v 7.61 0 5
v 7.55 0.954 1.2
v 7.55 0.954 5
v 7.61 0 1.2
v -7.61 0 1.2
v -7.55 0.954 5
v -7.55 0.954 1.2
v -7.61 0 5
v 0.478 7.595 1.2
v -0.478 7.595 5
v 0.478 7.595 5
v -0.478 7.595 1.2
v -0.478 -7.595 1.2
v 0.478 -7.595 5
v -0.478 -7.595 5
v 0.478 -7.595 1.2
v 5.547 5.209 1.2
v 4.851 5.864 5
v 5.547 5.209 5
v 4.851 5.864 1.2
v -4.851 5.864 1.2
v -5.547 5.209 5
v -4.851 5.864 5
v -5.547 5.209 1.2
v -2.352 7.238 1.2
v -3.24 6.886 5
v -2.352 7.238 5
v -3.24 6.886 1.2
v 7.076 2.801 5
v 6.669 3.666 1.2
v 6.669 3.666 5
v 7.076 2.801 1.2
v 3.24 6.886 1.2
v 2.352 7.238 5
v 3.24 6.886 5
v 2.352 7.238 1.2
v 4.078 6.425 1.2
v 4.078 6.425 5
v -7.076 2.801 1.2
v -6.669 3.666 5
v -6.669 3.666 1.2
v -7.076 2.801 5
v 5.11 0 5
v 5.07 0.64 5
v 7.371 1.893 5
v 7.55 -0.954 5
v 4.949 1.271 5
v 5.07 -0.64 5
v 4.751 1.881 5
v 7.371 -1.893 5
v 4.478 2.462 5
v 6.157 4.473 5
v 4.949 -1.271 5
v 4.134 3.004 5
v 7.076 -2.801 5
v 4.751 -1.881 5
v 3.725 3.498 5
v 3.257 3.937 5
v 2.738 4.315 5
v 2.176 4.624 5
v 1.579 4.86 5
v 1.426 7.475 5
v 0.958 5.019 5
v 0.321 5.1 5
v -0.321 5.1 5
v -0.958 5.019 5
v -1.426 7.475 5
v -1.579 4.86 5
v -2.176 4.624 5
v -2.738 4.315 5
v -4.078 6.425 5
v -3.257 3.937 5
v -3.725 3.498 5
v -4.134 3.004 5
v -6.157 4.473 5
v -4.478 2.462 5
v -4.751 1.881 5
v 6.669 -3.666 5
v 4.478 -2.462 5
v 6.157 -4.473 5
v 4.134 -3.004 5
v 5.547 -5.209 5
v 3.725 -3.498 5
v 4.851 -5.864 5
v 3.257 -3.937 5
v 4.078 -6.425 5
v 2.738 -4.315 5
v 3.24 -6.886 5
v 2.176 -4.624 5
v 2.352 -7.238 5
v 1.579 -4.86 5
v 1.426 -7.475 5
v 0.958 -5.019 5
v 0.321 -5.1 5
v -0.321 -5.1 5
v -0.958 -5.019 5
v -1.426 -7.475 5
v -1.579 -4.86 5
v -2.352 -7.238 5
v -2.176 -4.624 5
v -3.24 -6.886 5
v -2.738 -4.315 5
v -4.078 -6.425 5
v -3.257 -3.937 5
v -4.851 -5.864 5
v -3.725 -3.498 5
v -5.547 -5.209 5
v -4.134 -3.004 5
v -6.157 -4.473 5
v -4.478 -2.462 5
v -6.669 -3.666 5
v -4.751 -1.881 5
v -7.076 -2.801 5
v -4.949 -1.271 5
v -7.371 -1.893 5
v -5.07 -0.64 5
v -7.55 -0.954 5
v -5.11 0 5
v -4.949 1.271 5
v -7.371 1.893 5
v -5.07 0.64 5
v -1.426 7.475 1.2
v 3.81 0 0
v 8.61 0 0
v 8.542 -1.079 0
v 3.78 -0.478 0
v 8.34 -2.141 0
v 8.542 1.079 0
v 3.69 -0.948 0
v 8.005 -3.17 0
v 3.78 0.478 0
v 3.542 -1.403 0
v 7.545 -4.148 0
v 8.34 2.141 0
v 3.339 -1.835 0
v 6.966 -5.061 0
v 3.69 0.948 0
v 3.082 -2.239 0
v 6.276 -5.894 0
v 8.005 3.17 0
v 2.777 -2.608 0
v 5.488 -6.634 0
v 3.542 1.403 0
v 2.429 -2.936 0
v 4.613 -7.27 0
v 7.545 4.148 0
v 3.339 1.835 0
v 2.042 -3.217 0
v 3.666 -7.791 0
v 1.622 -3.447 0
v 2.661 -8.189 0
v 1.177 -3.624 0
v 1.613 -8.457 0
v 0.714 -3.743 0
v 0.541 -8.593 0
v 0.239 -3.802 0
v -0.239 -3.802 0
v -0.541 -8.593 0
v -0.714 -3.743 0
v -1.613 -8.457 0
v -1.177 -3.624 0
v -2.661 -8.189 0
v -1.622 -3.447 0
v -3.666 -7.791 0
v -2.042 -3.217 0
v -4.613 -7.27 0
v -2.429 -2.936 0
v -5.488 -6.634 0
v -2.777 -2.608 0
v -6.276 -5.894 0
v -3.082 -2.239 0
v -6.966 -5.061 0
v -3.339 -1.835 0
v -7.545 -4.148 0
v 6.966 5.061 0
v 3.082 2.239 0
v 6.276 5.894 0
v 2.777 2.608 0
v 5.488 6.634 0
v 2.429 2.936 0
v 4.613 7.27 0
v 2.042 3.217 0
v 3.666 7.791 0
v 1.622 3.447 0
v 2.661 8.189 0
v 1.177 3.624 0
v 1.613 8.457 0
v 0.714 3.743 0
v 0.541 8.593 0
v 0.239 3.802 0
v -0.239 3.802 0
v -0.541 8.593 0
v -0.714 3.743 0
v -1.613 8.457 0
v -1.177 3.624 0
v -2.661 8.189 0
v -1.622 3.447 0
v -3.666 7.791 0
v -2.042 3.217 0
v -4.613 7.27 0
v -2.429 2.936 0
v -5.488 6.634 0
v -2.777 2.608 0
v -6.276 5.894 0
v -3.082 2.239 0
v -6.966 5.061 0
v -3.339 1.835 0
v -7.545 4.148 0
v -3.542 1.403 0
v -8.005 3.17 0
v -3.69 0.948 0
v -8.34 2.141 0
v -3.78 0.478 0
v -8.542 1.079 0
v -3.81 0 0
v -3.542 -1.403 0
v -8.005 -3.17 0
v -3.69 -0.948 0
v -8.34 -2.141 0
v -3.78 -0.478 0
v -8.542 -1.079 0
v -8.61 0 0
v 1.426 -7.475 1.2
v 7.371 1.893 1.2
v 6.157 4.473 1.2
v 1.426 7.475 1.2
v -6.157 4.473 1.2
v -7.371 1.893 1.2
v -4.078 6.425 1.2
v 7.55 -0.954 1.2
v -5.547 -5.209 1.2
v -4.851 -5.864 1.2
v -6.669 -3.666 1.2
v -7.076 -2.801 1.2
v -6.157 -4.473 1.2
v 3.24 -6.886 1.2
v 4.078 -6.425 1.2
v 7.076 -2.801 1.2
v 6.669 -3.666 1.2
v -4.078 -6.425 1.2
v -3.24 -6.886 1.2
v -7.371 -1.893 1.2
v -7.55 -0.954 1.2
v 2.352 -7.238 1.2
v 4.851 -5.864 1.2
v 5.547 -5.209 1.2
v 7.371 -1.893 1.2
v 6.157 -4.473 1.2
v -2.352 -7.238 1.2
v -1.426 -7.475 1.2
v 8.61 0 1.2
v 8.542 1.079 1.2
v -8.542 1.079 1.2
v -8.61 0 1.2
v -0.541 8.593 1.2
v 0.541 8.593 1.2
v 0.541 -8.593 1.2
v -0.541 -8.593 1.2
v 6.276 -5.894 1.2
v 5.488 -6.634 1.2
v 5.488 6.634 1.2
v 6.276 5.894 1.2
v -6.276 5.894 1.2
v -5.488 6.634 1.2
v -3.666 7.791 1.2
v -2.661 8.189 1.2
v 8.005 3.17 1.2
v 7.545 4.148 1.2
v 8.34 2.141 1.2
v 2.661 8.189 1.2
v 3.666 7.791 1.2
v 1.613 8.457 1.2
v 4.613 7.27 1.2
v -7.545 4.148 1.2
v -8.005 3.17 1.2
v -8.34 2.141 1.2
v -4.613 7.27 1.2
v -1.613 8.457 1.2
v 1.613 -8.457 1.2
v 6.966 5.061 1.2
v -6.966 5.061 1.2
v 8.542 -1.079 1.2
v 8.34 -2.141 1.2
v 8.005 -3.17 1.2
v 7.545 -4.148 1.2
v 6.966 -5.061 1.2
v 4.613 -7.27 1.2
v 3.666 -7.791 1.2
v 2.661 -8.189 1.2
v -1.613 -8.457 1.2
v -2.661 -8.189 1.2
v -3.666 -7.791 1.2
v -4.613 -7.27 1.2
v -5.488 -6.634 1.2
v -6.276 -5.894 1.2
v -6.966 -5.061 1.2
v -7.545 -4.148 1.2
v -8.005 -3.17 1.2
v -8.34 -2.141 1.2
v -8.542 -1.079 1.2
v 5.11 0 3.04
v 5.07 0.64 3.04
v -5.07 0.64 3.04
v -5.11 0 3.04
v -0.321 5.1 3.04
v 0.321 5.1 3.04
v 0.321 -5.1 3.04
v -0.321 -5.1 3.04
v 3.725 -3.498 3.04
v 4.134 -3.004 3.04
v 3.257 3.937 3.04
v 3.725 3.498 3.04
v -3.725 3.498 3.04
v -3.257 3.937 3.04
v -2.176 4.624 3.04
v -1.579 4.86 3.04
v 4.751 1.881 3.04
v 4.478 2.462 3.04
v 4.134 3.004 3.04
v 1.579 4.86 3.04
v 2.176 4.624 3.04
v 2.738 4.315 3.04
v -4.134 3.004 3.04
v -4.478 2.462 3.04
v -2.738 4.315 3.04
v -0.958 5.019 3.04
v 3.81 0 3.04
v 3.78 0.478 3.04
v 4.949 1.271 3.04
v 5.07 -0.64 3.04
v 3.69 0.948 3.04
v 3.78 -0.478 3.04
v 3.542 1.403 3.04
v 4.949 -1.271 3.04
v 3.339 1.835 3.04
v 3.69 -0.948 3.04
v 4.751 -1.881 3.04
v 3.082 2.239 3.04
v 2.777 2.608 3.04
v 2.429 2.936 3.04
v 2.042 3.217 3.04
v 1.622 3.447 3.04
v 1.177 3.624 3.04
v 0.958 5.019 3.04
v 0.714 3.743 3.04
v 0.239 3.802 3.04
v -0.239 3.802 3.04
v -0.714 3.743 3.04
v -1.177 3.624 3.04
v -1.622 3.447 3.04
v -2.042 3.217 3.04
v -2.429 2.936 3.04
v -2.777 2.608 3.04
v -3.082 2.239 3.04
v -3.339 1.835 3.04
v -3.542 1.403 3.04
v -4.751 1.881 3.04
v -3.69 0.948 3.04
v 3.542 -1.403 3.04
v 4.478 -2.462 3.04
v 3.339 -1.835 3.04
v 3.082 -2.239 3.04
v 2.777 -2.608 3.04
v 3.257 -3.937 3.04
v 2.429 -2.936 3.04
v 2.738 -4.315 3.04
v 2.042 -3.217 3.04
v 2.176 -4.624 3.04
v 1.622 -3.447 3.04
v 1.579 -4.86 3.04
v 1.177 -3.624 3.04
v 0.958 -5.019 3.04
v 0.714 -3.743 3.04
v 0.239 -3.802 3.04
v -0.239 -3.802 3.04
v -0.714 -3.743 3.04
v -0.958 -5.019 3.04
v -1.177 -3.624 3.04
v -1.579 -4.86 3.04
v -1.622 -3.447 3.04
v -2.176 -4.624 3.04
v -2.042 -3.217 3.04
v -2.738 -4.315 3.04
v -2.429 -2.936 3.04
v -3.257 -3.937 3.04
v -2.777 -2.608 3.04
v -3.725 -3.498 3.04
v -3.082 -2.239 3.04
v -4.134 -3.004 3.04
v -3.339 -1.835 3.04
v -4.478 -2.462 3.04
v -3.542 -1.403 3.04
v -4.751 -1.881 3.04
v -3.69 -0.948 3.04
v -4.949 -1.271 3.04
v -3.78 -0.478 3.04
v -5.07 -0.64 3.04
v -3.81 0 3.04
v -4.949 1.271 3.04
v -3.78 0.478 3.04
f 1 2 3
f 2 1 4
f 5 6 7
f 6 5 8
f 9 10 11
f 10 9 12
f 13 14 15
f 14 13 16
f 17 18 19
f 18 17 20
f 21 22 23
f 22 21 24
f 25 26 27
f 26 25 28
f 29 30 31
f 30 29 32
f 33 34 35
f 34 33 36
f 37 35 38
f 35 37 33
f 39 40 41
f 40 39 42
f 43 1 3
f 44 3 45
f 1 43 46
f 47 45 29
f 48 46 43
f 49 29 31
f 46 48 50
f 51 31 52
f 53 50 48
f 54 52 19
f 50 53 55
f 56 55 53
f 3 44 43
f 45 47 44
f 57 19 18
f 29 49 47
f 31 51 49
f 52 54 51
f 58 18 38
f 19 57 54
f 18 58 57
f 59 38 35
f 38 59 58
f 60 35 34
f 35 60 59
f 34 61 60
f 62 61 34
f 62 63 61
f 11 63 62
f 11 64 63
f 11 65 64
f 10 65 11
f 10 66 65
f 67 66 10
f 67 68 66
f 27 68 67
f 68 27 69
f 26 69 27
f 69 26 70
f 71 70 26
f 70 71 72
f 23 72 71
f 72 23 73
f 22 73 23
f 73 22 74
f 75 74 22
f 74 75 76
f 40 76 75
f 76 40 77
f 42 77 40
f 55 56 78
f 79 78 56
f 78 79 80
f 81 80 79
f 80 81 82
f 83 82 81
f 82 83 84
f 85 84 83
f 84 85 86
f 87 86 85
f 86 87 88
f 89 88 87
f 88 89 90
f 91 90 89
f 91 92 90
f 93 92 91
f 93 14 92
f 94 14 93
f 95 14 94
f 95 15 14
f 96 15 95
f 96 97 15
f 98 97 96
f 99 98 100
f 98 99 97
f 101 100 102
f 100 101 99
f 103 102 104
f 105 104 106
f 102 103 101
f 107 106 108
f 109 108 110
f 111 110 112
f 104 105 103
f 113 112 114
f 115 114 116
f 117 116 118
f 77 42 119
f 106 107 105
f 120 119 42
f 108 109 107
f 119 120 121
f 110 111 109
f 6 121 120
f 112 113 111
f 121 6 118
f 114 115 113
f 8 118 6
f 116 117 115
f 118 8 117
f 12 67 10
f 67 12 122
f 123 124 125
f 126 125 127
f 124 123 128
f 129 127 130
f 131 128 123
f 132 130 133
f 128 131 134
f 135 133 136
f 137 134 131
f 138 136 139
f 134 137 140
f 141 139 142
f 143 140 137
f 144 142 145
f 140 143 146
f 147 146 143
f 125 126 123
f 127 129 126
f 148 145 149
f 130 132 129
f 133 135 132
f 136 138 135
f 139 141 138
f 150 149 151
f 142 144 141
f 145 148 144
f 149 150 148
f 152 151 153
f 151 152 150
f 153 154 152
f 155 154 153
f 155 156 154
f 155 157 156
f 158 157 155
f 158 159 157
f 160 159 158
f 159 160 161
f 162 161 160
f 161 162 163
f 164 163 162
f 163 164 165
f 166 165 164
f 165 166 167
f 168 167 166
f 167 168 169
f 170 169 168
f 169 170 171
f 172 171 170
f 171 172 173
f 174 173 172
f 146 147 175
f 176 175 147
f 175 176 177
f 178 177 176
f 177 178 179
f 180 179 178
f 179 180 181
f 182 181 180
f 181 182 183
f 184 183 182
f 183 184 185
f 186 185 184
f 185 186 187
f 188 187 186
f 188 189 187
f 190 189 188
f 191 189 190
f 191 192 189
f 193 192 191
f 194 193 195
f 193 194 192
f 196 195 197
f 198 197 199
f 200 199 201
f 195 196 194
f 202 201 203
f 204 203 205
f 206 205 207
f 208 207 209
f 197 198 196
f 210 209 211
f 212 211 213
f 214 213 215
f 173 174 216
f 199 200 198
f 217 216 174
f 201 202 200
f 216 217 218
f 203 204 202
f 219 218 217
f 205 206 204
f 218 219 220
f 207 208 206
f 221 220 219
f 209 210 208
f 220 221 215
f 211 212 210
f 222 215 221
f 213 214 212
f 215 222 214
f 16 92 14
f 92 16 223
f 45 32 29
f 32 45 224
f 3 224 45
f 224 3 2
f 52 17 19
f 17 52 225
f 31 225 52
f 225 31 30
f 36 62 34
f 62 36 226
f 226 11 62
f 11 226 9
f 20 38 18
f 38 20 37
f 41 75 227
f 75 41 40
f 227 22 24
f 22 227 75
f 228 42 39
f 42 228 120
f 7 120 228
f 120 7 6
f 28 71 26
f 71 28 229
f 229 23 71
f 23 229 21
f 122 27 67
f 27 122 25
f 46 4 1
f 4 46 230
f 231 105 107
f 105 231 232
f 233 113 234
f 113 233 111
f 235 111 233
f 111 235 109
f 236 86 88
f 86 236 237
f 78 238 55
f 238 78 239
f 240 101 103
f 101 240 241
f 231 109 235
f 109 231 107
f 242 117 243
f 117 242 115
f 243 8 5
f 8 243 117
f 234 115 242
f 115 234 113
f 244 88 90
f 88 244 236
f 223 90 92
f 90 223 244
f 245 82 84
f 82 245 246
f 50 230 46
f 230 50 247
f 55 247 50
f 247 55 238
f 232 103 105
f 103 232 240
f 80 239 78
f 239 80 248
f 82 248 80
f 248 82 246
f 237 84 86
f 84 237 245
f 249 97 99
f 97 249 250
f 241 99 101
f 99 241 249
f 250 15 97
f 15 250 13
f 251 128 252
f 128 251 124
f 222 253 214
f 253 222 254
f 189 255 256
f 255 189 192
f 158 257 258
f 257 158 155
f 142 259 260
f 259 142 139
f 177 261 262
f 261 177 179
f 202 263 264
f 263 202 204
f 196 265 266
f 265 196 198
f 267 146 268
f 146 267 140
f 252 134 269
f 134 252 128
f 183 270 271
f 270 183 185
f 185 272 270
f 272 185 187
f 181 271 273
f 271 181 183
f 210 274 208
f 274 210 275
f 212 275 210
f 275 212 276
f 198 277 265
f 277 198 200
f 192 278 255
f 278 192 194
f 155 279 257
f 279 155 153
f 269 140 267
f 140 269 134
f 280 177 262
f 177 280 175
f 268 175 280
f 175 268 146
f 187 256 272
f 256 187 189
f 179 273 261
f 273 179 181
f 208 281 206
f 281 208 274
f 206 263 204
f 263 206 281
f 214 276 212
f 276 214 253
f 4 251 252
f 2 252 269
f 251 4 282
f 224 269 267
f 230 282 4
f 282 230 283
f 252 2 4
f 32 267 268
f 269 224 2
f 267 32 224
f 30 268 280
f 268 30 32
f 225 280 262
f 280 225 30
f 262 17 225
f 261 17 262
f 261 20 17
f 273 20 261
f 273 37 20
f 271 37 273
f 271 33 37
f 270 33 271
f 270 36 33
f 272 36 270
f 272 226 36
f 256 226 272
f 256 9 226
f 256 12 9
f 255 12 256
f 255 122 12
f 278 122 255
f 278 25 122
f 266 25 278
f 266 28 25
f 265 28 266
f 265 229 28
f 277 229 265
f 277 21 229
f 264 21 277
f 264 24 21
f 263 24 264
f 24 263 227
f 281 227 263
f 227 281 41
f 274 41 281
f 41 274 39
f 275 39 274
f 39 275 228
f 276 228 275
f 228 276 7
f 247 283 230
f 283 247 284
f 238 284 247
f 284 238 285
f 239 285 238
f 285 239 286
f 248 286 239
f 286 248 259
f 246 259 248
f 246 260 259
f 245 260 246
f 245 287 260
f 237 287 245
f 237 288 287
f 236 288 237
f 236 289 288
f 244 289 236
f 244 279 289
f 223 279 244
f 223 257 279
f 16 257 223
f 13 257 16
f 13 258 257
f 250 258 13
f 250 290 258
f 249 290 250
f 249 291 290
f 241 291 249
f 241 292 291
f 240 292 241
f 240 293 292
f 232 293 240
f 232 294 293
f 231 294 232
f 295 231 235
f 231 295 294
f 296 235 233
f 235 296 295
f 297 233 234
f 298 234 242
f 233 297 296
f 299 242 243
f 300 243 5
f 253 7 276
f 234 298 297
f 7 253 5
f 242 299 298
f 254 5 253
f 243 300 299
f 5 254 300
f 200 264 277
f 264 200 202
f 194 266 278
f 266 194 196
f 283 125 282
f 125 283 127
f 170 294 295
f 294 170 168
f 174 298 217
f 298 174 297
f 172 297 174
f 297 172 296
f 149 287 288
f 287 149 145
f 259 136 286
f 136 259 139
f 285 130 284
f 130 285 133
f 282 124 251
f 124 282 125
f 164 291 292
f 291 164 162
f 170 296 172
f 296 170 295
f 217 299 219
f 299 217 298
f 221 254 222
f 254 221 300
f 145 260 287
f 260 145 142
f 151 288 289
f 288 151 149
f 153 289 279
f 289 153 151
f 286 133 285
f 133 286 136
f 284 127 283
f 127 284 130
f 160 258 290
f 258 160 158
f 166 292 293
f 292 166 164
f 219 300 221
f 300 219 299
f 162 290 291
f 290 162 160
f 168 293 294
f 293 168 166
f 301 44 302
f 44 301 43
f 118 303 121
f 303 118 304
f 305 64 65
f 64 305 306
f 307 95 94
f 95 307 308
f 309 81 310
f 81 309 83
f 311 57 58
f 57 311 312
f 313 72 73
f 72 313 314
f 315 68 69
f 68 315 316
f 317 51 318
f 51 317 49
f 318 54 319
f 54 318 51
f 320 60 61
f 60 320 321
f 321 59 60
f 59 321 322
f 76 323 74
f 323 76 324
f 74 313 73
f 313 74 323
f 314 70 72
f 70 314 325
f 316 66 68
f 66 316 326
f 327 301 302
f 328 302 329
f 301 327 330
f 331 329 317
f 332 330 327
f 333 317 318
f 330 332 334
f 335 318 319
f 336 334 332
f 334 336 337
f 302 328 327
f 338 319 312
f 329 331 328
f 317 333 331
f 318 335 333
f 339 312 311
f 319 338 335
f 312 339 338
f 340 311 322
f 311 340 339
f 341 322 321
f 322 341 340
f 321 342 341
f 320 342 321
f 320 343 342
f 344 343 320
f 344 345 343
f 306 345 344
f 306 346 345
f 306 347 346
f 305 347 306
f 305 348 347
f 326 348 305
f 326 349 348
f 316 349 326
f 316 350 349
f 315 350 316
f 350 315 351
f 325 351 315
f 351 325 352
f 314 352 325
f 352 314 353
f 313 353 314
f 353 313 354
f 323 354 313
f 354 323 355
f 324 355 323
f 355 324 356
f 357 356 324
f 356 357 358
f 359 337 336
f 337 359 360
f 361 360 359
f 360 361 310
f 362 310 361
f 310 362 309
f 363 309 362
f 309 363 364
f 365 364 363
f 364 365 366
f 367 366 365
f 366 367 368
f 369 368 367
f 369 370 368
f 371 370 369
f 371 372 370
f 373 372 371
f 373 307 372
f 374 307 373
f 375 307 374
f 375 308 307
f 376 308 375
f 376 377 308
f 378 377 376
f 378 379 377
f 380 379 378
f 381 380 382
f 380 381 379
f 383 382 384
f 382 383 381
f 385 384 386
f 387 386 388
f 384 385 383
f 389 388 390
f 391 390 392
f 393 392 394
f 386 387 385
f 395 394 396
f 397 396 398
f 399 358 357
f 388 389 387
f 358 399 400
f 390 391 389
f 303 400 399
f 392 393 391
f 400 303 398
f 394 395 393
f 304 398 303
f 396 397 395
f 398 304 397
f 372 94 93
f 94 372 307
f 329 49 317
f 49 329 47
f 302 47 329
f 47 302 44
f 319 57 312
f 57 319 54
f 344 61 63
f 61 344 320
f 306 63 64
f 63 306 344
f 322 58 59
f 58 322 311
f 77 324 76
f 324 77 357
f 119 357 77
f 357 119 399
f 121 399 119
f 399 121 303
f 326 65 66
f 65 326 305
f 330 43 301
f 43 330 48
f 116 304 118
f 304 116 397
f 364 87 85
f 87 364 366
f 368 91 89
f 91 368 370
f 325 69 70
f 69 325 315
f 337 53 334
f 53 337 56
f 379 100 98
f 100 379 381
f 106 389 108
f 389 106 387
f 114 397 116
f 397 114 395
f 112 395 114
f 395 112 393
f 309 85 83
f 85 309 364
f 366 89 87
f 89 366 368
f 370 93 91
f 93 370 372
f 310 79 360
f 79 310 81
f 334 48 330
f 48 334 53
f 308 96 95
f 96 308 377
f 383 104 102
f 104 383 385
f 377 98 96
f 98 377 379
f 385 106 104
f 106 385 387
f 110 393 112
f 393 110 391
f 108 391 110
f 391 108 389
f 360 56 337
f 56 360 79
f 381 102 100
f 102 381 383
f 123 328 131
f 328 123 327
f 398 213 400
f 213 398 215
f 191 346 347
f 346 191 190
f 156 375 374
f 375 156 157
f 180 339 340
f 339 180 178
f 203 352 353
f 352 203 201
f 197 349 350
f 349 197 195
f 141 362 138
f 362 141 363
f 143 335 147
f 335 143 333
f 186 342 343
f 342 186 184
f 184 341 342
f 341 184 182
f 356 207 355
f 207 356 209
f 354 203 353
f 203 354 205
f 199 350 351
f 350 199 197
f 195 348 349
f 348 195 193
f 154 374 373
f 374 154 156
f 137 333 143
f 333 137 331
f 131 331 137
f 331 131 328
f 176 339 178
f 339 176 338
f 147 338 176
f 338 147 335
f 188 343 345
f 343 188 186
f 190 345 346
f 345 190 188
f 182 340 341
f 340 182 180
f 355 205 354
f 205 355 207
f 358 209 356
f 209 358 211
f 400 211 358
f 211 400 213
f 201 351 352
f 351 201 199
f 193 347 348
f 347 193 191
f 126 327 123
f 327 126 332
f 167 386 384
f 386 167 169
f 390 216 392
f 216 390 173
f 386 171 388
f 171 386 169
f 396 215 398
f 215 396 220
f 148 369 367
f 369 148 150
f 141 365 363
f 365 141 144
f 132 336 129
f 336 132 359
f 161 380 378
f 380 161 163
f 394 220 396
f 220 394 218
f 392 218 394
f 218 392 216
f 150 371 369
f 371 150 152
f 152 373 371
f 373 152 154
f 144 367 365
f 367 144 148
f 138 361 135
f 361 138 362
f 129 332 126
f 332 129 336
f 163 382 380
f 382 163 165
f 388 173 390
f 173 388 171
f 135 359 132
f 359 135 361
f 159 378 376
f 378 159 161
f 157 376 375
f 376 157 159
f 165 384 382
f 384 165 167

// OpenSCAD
//Carbon i3 Modified

// PRUSA iteration3
// 624 bearing belt guide
// GNU GPL v3
// Josef Průša <iam@josefprusa.cz> and contributors
// http://www.reprap.org/wiki/Prusa_Mendel
// http://prusamendel.org

wall= 1.2;
height= 5.0;
bearing_thickness= 3.9;
clearence= 0.01; 

module belt_guide_base(){
 cylinder(r=6.4+wall+clearence, h=height, $fn=50);
 cylinder(r=5+wall+clearence+2*wall, h=0.95+0.25, $fn=50);
}

module belt_guide_holes(){
 translate([0,0,height-(bearing_thickness/2)-clearence ]) cylinder(r=5.1+clearence, h=10, $fn=50);
 translate([0,0,-1]) cylinder(r=5+wall+clearence-2*wall, h=10, $fn=50);
}

// Final part
module belt_guide(){
 difference(){
  belt_guide_base();
  belt_guide_holes();
 }
}

belt_guide();
